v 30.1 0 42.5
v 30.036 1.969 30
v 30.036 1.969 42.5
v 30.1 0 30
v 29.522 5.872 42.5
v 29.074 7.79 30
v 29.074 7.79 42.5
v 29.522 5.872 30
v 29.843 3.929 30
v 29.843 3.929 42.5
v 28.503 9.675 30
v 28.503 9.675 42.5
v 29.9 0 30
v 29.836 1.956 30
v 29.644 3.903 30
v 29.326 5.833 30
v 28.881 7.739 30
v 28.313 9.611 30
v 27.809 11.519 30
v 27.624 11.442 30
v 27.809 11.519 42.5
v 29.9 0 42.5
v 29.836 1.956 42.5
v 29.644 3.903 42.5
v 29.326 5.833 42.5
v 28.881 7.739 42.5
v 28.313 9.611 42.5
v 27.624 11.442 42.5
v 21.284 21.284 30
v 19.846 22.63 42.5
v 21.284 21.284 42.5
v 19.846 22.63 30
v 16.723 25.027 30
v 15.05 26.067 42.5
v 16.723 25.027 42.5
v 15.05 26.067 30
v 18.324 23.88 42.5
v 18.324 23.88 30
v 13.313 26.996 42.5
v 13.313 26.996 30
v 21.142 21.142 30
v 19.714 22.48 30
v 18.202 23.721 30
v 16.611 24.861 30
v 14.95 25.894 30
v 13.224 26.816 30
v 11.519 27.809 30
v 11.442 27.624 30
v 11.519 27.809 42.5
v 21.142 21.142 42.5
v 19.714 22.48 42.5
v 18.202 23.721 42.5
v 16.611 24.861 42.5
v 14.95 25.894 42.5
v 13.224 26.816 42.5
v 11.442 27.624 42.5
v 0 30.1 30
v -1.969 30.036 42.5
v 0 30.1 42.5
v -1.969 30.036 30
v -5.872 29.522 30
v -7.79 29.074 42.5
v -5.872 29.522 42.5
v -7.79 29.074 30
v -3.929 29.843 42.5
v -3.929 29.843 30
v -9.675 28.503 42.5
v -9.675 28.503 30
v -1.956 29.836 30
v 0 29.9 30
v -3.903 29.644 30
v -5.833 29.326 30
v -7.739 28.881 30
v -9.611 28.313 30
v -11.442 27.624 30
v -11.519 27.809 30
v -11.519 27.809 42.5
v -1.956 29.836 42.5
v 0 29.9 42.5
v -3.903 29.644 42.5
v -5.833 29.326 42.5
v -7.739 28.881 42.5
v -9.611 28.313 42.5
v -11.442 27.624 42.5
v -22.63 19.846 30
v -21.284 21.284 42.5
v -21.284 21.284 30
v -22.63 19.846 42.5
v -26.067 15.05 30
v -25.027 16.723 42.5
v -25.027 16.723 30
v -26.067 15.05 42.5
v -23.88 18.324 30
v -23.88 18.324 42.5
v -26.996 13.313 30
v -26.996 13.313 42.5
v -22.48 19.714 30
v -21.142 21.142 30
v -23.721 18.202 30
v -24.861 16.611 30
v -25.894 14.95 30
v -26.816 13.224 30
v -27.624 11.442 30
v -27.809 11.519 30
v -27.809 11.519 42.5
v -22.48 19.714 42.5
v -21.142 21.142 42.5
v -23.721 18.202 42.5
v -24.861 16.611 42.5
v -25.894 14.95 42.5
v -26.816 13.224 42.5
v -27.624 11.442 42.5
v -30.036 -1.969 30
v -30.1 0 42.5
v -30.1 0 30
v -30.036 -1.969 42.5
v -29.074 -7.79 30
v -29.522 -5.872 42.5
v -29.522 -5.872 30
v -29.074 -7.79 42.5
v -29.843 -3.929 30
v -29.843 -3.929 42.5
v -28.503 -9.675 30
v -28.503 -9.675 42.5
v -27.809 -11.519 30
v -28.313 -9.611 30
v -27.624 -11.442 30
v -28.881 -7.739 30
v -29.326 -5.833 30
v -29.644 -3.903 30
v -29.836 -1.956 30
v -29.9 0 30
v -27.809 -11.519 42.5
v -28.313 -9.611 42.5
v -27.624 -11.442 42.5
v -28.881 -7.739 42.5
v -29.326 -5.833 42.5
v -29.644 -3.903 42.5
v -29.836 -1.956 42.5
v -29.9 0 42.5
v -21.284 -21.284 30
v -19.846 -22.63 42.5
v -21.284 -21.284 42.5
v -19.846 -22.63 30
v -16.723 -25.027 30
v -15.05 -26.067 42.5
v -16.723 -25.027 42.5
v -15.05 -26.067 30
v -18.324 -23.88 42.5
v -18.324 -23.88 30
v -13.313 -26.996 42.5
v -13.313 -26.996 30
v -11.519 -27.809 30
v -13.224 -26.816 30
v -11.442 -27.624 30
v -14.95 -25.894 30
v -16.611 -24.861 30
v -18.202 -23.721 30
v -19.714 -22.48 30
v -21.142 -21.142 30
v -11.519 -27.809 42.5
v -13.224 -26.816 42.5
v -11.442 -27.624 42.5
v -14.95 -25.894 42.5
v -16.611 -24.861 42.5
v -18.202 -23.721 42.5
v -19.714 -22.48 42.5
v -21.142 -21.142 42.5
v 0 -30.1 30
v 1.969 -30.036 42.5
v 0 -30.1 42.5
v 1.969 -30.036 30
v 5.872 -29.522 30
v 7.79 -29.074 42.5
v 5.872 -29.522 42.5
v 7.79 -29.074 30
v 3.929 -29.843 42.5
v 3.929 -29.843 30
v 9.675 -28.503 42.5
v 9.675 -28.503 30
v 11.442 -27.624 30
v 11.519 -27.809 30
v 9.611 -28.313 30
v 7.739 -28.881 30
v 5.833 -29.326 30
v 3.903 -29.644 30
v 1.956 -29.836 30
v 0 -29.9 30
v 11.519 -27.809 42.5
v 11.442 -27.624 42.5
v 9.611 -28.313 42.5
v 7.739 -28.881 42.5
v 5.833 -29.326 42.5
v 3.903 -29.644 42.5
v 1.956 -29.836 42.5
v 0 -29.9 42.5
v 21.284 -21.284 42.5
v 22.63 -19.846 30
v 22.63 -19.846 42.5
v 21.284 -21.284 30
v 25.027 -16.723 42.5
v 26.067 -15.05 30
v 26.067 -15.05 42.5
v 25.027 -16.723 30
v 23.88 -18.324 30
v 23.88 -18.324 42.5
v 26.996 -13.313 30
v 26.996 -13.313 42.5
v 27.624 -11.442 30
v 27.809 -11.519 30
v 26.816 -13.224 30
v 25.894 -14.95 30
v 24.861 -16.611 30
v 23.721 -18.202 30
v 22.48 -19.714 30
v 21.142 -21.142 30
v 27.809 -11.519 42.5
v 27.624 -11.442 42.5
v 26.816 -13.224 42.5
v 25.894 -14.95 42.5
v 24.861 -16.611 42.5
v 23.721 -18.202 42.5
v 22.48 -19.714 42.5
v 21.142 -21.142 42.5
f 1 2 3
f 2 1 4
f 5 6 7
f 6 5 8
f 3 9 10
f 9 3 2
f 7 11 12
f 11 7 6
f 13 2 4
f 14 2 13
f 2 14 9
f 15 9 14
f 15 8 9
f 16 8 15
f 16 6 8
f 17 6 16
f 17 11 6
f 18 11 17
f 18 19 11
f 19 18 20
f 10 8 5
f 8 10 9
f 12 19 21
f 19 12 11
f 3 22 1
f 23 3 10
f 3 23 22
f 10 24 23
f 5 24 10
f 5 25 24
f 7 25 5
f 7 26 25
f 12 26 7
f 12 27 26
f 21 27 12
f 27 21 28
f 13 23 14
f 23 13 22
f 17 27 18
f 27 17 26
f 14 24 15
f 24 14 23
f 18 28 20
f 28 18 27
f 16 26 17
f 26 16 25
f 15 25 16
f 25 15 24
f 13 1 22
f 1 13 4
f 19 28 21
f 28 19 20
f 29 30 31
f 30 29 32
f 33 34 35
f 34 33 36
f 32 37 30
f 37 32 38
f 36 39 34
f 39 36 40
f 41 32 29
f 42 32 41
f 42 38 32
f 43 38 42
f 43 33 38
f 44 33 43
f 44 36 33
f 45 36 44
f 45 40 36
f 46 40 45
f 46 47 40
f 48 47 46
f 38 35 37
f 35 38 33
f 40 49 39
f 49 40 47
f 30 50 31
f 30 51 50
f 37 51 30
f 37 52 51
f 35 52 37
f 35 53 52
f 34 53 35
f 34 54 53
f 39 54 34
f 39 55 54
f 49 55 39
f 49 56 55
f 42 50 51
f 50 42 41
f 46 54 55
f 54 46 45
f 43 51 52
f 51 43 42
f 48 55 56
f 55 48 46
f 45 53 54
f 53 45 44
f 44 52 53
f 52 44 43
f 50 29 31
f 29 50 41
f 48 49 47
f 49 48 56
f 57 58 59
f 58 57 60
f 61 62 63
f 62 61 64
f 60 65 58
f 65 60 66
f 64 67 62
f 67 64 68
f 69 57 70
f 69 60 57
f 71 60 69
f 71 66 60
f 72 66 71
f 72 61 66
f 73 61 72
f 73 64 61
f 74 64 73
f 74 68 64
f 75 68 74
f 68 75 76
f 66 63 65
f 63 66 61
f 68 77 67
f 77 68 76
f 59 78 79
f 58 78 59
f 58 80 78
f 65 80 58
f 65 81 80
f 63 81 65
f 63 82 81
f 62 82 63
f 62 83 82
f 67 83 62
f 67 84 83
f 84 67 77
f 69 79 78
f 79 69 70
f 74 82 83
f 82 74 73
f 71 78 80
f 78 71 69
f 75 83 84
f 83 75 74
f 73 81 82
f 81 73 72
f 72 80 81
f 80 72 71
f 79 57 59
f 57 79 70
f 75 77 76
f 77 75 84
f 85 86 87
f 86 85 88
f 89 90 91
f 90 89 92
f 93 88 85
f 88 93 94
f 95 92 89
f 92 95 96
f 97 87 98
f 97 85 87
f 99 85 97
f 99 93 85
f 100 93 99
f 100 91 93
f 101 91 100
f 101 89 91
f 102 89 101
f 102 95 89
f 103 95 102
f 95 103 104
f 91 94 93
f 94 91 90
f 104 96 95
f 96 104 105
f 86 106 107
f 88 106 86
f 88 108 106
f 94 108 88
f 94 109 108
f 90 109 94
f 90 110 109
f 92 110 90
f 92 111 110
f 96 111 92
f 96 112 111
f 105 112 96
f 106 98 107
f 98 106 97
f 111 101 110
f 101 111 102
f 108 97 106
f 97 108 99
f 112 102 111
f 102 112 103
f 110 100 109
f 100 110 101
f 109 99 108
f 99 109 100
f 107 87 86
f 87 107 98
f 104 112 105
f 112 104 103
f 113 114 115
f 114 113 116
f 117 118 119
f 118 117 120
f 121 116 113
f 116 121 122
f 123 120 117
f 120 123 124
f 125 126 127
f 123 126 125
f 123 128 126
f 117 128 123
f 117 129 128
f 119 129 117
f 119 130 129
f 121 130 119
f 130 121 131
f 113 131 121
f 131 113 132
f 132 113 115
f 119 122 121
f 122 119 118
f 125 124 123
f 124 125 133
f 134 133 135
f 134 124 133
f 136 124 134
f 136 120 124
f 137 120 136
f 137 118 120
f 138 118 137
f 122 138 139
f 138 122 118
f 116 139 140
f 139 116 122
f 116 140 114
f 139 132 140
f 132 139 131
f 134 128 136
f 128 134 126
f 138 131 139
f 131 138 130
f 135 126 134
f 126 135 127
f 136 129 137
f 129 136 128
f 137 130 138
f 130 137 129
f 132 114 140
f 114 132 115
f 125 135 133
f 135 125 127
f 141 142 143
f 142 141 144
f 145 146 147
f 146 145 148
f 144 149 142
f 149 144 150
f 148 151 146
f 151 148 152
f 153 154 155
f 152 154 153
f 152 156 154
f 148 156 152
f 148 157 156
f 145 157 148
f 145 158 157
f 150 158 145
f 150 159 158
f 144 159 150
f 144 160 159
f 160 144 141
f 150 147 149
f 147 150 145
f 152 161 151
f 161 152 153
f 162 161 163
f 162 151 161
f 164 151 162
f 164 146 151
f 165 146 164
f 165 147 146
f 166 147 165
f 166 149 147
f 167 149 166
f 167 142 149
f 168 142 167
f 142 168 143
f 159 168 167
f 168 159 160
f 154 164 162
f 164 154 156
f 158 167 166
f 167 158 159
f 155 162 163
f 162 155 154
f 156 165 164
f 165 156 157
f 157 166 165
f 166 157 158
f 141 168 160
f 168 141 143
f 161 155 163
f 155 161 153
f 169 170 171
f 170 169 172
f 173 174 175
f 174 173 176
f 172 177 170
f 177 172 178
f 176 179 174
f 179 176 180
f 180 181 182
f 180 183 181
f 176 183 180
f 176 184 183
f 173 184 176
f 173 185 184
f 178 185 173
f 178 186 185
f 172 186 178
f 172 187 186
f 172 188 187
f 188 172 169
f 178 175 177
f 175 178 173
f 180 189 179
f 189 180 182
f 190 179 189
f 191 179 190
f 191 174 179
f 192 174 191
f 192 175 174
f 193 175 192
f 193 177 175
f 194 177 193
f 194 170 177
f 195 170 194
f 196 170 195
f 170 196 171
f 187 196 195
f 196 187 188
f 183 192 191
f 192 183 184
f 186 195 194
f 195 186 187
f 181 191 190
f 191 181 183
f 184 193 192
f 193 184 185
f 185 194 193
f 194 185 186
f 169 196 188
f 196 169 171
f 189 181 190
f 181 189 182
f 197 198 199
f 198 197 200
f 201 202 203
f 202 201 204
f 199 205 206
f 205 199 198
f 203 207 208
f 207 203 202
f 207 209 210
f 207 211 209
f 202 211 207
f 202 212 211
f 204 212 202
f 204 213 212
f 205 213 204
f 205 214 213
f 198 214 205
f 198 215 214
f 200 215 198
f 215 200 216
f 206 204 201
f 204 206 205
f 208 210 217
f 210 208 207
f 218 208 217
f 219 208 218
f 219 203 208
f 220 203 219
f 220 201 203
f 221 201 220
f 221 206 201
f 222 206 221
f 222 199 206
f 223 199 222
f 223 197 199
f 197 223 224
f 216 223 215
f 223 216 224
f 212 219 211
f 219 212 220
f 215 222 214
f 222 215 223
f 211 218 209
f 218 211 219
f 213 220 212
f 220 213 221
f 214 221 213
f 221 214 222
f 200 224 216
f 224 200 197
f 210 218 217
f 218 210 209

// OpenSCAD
// file: def.scad
round_radius = 0.6;
sticker_margin = 1.2;
sticker_round_radius = 0.4;
cube_size = 60;
disk_height = 12.5;
disk_radius = cube_size / 2;
base_size = cube_size / 2 / sqrt(10 + 7 * sqrt(2));
cut1_dis = base_size * (1 + sqrt(2) / 2);
cut2_dis = cube_size / 2;
inf = cube_size * 10;

module _cube() {
    cube([cube_size - round_radius * 2, cube_size - round_radius * 2, cube_size - round_radius * 2], center = true);
}

module _disk() {
    translate([0, 0, cube_size / 2 + disk_height / 2])
        cylinder(r = disk_radius - round_radius, h = disk_height - round_radius * 2, center = true, $fn = 96);
}

module _int_cut1() {
    translate([-inf, -inf, cut1_dis + round_radius])
        cube([inf * 2, inf * 2, inf]);
}

module _dif_cut1() {
    translate([-inf, -inf, cut1_dis - round_radius])
        cube([inf * 2, inf * 2, inf]);
}

module _sticker_int_cut1() {
    translate([-inf, -inf, cut1_dis + sticker_margin])
        cube([inf * 2, inf * 2, inf]);
}

module _sticker_dif_cut1() {
    translate([-inf, -inf, cut1_dis - sticker_margin])
        cube([inf * 2, inf * 2, inf]);
}

module _int_cut2() {
    translate([-inf, -inf, cut2_dis + round_radius])
        cube([inf * 2, inf * 2, inf]);
}

module _dif_cut2() {
    translate([-inf, -inf, cut2_dis - round_radius])
        cube([inf * 2, inf * 2, inf]);
}

module _sticker_int_cut2() {
    translate([-inf, -inf, cut2_dis + sticker_margin])
        cube([inf * 2, inf * 2, inf]);
}

module _sticker_dif_cut2() {
    translate([-inf, -inf, cut2_dis - sticker_margin])
        cube([inf * 2, inf * 2, inf]);
}

module _sticker_cube() {
    translate([-cube_size / 2 + sticker_margin, -cube_size / 2 + sticker_margin, cube_size / 2 - 0.05])
        cube([cube_size - sticker_margin * 2, cube_size - sticker_margin * 2, 0.1]);
}

module _sticker_disk() {
    translate([0, 0, cube_size / 2 + disk_height - 0.05])
        cylinder(r = disk_radius - sticker_margin, h = 0.1, center = true, $fn = 96);
}
// main file
include <def.scad>

module selector_1_ccw() {
    difference() {
        difference() {
            translate([0, 0, cube_size / 2 + disk_height / 2])
                cylinder(r = disk_radius + 0.1, h = disk_height, center = true, $fn = 96);
            cylinder(r = disk_radius - 0.1, h = inf * 2, center = true, $fn = 96);
        }
        for (deg = [0, -157.5])
        rotate([90, 0, deg])
            translate([-inf, -inf, 0])
                cube([inf * 2, inf * 2, inf]);
    }
}

for (deg = [0 : 45 : 315])
    rotate([0, 0, deg])
        selector_1_ccw();
